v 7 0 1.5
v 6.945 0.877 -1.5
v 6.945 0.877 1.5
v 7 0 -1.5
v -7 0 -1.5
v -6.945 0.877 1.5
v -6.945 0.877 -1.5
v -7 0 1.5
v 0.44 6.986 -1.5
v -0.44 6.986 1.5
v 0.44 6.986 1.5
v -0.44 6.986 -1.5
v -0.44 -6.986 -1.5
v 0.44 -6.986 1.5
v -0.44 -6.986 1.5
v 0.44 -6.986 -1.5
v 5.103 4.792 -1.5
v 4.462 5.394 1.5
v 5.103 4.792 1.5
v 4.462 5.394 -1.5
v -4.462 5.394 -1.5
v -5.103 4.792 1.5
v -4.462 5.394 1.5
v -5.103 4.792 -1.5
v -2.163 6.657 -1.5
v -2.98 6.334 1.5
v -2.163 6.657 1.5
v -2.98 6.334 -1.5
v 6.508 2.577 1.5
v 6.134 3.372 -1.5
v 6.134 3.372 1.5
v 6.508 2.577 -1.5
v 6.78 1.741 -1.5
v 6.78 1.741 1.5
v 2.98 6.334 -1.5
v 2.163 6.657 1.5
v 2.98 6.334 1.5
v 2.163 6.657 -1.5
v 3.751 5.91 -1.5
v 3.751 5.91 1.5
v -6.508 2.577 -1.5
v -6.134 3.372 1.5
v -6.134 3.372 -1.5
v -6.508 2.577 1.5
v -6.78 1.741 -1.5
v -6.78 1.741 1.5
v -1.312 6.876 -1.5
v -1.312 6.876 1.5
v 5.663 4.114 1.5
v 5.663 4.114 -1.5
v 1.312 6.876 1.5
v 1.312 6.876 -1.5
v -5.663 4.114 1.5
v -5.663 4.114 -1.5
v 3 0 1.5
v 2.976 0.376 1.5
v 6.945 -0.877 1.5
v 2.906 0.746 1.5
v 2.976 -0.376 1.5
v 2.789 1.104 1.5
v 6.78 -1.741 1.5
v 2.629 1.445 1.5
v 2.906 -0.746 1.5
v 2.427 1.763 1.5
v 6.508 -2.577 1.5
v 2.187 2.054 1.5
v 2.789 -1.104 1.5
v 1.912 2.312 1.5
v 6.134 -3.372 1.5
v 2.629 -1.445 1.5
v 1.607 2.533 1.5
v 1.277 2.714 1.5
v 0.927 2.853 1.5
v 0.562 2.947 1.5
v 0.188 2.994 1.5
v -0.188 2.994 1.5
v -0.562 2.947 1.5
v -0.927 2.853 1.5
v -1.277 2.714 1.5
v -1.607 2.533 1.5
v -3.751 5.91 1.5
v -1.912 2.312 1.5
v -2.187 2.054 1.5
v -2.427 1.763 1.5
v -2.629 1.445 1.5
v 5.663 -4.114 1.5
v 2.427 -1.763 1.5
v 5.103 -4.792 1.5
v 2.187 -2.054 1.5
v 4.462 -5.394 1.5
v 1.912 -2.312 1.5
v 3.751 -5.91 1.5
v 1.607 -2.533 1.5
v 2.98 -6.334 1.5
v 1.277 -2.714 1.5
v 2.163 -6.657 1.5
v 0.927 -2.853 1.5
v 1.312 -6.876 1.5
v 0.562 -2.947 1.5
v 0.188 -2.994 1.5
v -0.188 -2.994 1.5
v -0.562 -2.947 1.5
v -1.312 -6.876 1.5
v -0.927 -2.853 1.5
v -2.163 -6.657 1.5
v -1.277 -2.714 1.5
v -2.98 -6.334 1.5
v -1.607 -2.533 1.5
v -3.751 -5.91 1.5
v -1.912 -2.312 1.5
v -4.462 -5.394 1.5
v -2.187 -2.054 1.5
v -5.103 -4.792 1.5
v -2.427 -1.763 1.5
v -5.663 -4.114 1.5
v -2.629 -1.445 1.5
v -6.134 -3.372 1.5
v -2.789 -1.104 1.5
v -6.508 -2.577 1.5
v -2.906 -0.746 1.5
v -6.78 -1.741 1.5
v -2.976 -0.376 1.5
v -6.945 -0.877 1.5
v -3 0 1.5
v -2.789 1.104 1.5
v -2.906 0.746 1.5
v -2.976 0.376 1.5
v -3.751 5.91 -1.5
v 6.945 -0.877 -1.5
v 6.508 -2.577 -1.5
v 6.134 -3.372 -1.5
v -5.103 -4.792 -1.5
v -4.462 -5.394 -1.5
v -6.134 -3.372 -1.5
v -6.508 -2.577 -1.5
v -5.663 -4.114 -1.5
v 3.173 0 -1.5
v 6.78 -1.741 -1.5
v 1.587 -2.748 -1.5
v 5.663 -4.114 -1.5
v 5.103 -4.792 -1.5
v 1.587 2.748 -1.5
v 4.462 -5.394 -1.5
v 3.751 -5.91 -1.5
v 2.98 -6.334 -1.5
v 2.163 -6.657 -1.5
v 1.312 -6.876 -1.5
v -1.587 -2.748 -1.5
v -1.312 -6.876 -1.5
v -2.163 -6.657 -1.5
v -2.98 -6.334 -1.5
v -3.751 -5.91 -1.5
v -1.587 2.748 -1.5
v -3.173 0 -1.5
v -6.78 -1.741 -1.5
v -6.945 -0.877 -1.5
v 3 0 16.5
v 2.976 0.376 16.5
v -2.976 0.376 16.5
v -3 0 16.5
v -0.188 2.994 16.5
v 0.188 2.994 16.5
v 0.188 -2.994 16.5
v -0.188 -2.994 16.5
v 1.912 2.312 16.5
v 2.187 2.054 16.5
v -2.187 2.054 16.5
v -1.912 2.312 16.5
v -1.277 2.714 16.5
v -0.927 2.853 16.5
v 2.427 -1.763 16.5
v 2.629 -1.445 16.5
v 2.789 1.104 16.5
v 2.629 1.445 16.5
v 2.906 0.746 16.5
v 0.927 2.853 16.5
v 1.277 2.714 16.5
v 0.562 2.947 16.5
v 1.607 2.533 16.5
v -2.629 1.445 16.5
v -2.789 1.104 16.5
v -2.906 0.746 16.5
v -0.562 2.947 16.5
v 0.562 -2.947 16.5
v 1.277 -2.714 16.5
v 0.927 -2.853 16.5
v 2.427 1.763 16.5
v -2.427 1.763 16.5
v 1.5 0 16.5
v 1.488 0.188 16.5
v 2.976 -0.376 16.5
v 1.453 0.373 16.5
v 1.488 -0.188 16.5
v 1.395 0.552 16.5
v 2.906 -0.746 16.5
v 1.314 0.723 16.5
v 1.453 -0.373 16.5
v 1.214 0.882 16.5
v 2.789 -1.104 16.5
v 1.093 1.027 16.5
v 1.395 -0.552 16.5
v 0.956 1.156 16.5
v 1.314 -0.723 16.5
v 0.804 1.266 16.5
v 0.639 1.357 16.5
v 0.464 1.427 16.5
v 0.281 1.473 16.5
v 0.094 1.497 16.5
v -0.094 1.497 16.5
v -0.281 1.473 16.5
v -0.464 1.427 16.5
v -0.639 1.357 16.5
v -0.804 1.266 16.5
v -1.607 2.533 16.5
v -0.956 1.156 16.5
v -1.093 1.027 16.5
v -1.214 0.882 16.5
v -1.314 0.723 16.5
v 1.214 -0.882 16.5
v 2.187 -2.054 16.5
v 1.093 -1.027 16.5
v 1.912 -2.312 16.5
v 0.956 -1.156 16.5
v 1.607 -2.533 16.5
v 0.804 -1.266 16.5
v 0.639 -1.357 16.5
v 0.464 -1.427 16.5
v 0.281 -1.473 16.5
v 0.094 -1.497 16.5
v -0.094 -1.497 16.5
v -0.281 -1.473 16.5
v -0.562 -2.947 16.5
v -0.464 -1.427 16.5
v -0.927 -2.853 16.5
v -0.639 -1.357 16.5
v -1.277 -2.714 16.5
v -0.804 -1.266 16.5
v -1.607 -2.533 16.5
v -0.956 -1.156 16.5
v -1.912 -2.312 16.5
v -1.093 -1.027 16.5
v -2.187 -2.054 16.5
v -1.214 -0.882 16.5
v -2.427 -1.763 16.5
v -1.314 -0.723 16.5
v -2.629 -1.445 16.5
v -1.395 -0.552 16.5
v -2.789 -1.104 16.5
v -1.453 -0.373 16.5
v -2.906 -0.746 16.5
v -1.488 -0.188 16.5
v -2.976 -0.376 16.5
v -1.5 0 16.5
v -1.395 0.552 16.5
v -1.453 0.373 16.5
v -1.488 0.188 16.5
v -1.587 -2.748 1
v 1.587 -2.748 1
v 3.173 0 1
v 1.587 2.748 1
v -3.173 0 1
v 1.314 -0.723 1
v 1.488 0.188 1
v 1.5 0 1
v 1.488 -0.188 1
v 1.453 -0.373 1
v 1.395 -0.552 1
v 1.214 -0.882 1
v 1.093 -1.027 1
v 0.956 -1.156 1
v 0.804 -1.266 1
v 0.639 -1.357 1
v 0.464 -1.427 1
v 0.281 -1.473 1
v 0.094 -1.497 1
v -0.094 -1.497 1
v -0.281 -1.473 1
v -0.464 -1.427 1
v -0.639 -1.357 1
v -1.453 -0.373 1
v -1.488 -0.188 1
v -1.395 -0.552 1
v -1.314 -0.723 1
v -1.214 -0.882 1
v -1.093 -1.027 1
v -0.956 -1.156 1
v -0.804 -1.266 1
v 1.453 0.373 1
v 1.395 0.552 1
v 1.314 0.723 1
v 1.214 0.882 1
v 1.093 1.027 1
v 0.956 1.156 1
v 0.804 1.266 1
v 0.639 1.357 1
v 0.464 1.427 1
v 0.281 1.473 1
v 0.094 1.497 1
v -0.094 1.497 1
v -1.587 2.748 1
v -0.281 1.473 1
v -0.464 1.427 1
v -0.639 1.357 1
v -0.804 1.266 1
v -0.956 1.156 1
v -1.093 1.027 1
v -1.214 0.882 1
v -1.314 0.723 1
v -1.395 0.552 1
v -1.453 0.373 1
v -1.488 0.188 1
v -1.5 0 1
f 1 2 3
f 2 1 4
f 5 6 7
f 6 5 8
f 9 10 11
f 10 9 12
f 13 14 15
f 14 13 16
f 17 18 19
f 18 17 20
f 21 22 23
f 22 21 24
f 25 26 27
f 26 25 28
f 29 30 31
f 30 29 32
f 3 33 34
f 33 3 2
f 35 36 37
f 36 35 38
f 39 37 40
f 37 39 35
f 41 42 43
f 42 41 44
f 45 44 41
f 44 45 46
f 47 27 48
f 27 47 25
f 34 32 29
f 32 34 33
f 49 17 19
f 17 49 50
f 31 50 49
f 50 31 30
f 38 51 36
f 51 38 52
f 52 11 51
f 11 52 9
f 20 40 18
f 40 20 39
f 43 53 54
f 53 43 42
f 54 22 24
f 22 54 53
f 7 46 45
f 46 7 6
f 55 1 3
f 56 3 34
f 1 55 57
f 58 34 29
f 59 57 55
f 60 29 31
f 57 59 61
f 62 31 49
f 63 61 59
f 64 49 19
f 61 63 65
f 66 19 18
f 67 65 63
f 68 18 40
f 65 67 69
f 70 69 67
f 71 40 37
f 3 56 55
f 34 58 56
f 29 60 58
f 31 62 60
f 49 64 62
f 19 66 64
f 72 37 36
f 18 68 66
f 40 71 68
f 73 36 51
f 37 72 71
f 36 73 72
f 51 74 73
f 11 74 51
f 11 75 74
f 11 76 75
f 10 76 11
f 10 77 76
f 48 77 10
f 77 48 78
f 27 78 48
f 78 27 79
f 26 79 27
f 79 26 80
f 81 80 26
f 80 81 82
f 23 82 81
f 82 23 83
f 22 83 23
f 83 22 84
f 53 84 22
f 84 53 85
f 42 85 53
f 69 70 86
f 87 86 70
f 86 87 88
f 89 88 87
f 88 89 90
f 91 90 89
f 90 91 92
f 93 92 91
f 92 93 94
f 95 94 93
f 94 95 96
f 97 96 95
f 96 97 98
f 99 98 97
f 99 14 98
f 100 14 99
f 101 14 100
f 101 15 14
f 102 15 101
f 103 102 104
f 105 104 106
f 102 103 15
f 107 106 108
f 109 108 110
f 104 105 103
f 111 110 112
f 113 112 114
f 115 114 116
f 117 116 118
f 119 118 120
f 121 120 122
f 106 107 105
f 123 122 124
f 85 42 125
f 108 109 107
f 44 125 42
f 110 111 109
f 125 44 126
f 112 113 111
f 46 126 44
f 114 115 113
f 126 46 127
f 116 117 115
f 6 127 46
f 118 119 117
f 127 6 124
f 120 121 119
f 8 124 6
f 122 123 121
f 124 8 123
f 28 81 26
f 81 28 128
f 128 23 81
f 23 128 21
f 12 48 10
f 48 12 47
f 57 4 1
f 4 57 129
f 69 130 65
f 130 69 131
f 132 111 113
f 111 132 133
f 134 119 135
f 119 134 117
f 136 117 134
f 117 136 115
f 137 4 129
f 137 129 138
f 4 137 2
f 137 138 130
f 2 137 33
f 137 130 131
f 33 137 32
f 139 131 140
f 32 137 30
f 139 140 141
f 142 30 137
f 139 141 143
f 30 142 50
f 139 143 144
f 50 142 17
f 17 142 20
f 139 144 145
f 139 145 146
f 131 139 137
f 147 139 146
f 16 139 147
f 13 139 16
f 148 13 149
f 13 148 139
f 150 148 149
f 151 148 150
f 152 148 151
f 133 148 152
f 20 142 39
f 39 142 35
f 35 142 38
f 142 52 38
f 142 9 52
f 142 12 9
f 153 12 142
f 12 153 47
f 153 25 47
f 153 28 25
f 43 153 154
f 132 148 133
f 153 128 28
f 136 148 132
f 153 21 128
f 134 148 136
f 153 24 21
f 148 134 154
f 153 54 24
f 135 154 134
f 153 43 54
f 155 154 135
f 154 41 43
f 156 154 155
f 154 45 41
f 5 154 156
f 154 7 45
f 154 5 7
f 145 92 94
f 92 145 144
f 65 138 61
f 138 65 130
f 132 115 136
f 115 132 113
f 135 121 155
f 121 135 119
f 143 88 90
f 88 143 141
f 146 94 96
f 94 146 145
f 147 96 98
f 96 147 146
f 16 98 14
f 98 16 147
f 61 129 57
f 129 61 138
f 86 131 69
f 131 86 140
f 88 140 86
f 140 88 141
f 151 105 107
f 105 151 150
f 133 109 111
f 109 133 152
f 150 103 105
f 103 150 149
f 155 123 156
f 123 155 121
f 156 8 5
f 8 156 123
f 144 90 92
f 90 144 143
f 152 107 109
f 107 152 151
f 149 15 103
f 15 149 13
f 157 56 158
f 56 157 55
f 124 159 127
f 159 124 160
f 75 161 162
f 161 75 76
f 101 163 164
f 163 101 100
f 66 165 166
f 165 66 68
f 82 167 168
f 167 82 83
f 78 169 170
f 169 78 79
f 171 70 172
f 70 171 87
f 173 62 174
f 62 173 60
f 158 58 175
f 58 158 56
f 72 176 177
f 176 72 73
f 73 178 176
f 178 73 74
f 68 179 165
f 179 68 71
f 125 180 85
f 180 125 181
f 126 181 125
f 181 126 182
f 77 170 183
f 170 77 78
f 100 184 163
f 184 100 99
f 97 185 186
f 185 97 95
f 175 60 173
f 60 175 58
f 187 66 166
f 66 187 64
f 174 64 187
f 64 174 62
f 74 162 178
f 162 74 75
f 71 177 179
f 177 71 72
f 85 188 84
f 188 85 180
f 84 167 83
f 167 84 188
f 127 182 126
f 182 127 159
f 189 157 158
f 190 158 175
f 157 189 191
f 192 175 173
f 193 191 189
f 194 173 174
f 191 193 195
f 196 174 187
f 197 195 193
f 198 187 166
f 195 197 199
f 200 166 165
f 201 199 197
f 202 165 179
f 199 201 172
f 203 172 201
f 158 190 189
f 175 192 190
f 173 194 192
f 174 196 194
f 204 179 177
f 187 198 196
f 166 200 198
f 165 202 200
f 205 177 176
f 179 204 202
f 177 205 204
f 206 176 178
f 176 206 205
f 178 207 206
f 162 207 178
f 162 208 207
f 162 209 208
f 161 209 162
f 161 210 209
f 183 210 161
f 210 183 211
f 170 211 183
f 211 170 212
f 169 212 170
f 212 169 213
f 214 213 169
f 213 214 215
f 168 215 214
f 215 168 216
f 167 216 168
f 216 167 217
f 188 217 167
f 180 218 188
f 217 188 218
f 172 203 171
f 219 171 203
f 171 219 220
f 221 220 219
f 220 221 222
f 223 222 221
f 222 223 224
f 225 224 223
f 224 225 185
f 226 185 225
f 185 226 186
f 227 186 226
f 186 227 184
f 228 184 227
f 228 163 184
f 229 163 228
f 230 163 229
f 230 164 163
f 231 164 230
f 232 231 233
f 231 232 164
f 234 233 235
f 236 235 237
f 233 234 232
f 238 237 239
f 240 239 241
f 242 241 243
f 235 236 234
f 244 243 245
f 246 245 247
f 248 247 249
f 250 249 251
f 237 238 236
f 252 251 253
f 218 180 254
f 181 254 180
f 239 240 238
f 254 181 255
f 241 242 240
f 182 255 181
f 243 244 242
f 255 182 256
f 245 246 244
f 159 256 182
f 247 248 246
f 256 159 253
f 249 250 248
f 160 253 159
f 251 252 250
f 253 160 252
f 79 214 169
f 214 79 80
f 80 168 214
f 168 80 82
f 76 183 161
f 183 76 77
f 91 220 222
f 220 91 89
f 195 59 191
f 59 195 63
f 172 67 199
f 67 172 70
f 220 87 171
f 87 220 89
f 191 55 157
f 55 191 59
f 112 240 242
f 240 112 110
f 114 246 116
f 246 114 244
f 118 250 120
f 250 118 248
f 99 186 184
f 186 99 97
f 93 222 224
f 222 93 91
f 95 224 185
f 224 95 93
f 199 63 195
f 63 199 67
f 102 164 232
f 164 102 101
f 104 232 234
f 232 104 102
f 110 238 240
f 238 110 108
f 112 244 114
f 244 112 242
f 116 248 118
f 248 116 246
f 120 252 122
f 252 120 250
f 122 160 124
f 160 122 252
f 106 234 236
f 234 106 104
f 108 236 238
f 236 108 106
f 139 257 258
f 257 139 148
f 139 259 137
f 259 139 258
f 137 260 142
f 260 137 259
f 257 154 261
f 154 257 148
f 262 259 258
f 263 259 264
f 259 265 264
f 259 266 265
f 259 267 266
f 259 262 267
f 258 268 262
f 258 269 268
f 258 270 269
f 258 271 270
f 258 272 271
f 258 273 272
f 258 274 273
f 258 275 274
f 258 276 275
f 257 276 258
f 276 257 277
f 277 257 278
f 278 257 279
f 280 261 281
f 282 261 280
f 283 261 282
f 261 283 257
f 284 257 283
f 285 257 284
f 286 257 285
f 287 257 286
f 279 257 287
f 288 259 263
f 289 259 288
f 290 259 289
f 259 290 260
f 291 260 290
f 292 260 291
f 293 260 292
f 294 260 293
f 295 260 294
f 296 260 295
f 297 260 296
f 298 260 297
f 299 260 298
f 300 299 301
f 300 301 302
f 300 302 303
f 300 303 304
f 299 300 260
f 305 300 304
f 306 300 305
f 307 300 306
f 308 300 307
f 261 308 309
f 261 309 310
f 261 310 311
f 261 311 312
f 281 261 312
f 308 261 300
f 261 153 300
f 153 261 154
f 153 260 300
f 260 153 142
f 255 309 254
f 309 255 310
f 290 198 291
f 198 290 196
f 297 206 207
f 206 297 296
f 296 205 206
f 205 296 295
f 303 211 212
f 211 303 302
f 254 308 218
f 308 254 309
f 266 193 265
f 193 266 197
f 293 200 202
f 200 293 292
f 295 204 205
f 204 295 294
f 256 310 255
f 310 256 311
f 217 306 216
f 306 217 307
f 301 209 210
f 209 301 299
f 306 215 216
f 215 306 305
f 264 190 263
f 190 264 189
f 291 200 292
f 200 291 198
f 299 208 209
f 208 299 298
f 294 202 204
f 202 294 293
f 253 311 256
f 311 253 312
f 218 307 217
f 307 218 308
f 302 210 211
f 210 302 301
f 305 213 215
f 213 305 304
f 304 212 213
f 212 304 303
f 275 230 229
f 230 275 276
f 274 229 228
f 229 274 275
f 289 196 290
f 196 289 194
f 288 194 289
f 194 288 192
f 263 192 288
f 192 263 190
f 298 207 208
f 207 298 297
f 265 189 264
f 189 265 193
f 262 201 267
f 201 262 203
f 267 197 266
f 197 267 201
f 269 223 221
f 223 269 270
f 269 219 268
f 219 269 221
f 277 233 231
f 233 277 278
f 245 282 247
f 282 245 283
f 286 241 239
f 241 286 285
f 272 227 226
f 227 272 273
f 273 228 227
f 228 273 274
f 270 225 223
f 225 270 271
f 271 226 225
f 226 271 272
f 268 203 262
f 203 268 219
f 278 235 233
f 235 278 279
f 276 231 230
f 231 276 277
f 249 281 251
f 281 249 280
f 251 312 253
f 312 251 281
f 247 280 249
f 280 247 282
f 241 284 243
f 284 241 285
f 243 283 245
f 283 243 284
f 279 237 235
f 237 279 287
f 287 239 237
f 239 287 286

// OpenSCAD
$fn = 50;


difference() {
	union() {
		translate(v = [0, 0, -1.5000000000]) {
			cylinder(h = 3, r = 7.0000000000);
		}
		translate(v = [0, 0, -1.5000000000]) {
			cylinder(h = 18, r = 3.0000000000);
		}
	}
	union() {
		translate(v = [0, 0, -1.5000000000]) {
			rotate(a = [0, 0, 0]) {
				difference() {
					union() {
						#linear_extrude(height = 2.5000000000) {
							polygon(points = [[3.1735000000, 0.0000000000], [1.5867500000, 2.7483316189], [-1.5867500000, 2.7483316189], [-3.1735000000, 0.0000000000], [-1.5867500000, -2.7483316189], [1.5867500000, -2.7483316189]]);
						}
					}
					union();
				}
			}
		}
		translate(v = [0, 0, -50.0000000000]) {
			cylinder(h = 100, r = 1.5000000000);
		}
	}
}
